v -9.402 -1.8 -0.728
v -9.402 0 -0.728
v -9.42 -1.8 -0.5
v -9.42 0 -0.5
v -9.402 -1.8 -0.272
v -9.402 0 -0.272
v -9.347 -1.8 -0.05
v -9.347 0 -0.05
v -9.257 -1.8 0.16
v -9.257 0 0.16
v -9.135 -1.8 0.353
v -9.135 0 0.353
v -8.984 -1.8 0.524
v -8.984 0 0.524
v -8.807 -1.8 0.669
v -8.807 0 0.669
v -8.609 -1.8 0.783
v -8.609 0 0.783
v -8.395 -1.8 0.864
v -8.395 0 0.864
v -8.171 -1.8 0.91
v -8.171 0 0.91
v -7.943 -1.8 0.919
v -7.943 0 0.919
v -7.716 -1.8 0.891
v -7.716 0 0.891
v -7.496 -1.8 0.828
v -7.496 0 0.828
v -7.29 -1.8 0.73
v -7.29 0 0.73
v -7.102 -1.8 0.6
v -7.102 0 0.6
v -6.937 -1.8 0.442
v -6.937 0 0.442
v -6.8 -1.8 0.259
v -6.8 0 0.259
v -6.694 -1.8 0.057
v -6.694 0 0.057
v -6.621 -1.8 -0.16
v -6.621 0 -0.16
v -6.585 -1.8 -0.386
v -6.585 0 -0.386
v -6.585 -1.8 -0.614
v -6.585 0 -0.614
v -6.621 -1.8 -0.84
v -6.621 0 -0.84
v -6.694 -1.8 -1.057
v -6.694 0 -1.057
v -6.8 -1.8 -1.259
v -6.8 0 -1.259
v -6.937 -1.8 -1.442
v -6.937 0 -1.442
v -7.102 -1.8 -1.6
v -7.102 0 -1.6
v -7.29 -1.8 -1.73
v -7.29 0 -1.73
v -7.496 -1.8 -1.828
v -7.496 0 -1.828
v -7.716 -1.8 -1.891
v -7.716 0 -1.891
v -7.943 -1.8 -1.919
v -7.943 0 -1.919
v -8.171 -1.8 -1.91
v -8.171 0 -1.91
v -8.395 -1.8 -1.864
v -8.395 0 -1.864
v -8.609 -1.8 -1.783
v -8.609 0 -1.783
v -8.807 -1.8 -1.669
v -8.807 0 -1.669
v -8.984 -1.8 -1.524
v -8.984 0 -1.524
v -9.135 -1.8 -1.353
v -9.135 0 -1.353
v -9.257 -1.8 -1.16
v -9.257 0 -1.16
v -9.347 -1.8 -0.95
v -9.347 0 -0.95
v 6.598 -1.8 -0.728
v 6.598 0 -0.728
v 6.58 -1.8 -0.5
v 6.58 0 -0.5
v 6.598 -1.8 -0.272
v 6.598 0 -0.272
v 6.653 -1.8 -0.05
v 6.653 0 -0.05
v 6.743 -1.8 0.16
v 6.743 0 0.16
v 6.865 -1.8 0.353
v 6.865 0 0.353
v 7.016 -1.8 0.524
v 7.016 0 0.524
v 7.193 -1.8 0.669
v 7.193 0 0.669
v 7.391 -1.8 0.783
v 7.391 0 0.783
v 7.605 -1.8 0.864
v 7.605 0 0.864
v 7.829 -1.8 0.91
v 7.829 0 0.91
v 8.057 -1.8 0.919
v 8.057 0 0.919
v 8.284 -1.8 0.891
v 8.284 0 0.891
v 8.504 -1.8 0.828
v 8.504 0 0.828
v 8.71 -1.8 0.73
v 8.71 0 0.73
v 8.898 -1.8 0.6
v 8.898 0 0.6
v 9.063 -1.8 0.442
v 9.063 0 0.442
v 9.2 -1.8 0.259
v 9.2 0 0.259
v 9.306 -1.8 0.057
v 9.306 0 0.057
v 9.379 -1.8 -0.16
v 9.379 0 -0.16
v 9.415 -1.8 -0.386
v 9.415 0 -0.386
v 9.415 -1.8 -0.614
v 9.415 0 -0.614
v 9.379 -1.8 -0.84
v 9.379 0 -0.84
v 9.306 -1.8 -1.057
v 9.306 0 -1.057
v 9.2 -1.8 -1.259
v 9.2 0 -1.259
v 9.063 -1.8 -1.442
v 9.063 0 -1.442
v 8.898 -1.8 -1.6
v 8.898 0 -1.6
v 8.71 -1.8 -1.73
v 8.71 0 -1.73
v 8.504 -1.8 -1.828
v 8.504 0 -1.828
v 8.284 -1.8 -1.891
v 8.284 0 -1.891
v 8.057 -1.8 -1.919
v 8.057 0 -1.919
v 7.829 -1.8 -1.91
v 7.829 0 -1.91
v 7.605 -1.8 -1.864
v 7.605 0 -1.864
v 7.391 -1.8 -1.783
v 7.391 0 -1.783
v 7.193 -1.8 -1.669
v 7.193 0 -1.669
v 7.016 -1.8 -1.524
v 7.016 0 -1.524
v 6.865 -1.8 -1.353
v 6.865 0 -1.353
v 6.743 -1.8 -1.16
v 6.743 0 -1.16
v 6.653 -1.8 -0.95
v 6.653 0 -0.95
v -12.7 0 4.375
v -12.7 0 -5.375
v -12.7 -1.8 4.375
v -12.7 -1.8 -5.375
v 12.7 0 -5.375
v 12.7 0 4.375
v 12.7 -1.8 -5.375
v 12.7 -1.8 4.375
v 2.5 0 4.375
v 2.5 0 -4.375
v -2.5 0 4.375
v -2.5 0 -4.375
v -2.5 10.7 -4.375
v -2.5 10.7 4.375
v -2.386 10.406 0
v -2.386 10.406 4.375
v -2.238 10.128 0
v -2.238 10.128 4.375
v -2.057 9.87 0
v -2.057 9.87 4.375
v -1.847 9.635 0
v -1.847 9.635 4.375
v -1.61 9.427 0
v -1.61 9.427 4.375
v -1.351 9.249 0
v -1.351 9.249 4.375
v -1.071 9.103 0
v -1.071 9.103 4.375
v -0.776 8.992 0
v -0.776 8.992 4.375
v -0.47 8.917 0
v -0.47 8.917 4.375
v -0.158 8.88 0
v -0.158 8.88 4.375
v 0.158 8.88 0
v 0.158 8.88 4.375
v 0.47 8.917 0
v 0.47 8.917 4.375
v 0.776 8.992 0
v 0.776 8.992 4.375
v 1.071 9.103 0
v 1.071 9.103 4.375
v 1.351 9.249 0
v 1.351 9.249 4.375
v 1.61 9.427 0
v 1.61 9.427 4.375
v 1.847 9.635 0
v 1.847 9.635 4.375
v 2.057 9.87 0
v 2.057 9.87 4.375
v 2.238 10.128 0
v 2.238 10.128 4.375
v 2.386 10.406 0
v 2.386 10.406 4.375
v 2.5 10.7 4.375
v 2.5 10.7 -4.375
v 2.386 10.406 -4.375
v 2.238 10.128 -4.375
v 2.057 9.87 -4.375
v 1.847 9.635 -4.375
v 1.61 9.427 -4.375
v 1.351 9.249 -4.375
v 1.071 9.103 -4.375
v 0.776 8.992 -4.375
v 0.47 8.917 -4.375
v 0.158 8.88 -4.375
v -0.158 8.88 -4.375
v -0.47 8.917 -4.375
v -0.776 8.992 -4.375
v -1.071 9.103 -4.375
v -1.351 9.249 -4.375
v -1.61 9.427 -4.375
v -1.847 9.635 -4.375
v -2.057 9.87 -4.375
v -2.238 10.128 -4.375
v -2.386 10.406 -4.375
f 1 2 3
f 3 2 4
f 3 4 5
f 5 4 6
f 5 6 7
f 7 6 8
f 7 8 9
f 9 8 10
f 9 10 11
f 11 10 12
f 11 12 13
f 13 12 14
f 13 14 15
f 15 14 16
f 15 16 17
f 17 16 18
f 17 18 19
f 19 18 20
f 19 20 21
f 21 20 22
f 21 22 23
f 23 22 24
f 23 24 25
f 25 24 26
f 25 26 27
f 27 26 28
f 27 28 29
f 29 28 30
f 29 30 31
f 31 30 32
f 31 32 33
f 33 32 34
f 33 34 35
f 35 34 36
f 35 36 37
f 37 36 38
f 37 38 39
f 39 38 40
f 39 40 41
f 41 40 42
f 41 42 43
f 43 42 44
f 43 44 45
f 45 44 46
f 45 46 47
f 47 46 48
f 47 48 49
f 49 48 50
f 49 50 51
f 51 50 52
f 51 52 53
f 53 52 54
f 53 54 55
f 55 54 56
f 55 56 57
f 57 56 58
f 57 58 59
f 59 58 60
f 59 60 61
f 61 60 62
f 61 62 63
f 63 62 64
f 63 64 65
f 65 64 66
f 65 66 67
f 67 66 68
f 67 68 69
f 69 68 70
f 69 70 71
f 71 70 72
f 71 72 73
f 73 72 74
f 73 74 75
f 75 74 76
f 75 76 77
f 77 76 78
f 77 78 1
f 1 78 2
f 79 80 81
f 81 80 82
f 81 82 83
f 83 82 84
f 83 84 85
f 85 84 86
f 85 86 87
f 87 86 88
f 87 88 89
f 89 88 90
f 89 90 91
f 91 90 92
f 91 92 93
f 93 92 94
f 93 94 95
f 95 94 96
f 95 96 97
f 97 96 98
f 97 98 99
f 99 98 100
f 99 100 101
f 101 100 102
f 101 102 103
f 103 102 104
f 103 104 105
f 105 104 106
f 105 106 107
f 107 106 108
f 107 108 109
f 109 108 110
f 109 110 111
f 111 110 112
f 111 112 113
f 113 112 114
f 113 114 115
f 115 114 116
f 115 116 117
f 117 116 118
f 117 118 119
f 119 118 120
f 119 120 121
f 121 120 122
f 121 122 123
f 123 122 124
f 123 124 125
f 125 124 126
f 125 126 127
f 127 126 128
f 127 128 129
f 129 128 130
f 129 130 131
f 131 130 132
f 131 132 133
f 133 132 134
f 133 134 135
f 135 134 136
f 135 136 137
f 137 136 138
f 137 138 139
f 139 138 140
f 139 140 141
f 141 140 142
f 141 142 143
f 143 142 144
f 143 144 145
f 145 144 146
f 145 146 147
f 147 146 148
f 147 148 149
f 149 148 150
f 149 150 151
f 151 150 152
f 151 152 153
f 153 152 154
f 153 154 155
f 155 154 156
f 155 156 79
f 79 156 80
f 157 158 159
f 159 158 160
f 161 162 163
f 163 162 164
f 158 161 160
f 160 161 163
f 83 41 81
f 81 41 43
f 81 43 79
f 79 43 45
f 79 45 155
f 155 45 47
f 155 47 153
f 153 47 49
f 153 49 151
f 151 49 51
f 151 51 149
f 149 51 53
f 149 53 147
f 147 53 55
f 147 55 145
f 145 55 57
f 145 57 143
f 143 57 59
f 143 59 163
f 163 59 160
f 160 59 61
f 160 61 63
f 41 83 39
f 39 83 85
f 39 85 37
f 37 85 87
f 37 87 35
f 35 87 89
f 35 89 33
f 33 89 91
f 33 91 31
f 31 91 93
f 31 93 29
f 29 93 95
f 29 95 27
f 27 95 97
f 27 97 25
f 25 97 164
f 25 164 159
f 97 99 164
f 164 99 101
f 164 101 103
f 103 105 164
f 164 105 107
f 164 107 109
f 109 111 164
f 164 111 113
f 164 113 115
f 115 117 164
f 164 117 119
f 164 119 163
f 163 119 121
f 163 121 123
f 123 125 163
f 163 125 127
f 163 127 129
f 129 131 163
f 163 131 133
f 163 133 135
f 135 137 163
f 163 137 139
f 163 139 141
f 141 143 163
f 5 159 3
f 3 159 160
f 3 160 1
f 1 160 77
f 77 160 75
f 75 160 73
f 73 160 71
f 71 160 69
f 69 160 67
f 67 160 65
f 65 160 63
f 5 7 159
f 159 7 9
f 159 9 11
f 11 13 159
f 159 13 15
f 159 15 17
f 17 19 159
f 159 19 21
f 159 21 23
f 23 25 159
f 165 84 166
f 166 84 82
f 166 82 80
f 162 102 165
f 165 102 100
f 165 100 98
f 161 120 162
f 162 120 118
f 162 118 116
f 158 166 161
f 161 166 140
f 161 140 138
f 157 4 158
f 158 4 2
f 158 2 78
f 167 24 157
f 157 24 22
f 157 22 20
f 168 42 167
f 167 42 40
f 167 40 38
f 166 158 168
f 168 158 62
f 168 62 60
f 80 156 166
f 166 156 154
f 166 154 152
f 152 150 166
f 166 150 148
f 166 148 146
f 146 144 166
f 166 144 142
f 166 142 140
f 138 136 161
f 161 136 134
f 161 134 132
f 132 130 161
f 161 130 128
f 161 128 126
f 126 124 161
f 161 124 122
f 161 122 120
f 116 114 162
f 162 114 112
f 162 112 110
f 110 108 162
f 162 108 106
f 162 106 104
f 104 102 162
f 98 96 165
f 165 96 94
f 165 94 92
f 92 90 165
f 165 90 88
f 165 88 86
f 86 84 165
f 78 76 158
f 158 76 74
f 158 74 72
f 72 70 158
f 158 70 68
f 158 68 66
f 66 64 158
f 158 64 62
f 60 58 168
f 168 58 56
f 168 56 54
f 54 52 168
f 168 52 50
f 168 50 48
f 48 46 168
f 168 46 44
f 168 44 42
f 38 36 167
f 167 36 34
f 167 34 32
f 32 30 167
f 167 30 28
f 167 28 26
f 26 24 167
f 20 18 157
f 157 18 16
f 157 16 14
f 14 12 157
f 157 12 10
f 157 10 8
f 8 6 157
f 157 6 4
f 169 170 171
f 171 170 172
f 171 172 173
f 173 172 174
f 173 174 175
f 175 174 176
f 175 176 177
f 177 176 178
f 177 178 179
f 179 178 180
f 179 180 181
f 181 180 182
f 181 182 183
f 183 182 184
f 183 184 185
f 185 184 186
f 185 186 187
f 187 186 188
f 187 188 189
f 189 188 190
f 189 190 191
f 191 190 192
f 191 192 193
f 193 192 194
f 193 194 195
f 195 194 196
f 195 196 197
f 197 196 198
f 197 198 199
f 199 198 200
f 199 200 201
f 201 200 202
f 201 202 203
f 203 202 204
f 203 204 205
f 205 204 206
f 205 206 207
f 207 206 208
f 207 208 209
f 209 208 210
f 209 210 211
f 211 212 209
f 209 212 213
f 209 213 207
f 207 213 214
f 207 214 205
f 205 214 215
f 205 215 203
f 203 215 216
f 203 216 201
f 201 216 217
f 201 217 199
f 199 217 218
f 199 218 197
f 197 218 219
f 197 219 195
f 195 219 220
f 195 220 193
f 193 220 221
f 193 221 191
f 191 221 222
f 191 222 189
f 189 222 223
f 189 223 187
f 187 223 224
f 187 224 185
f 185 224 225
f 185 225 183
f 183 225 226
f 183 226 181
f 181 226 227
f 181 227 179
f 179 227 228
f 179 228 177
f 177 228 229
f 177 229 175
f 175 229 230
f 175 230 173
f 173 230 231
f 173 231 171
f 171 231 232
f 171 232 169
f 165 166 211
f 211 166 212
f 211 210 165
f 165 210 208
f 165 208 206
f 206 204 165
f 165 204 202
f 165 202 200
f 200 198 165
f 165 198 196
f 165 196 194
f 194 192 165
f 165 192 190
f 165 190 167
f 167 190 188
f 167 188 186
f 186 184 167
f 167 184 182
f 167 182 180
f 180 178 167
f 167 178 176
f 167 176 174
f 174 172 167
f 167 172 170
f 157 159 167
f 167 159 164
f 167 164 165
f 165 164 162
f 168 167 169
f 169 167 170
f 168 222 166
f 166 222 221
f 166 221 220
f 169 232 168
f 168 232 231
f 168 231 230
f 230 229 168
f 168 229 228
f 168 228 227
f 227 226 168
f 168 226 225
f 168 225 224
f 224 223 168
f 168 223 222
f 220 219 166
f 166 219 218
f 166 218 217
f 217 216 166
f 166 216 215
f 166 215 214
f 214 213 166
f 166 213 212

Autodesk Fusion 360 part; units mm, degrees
sketch "Sketch1" plane through (0, 0, 0) normal (0, 1, 0) x (1, 0, 0)
  line L0 (2.5, -4.375) -> (-2.5, -4.375)
  line L1 (-2.5, -4.375) -> (-2.5, 4.375)
  line L2 (-2.5, 4.375) -> (2.5, 4.375)
  line L3 (2.5, 4.375) -> (2.5, -4.375)
  line L4 (0, -17.6215) -> (0, 10.113) construction
  line L5 (14.6118, 0) -> (-14.9327, 0) construction
  dimension "d1" = 5
  dimension "d2" = 8.75
extrude "Extrude1" add sketch "Sketch1" along normal blind 8.875
sketch "Sketch2" plane through (0, 0, 4.375) normal (0, 0, 1) x (1, 0, 0)
  line L0 (-2.5, 0) -> (2.5, 0)
  line L1 (2.5, 0) -> (2.5, 8.875)
  line L2 (2.5, 8.875) -> (-2.5, 8.875)
  line L3 (-2.5, 8.875) -> (-2.5, 0)
  line L4 (-2.5, 8.875) -> (2.5, 8.875)
  line L5 (2.5, 8.875) -> (2.5, 11.5)
  line L6 (2.5, 11.5) -> (-2.5, 11.5)
  line L7 (-2.5, 11.5) -> (-2.5, 8.875)
  circle A0 centre (0, 11.5) radius 2.625
  line L8 (0, 0) -> (0, 8.875) construction
  dimension "d10" = 5.25
extrude "Extrude3" add sketch "Sketch2" against normal blind 8.75 contours L2 L4 L7 A0 | L2 L4 L5 A0
sketch "Sketch3" plane through (0, 0, 0) normal (0, -1, 0) x (1, 0, 0)
  line L0 (-2.5, -4.375) -> (2.5, -4.375)
  line L1 (2.5, -4.375) -> (2.5, 4.375)
  line L2 (2.5, 4.375) -> (-2.5, 4.375)
  line L3 (-2.5, 4.375) -> (-2.5, -4.375)
  line L4 (-12.7, 4.375) -> (12.7, 4.375)
  line L5 (12.7, 4.375) -> (12.7, -5.375)
  line L6 (12.7, -5.375) -> (-12.7, -5.375)
  line L7 (-12.7, -5.375) -> (-12.7, 4.375)
  line L8 (0, 4.375) -> (0, -4.375) construction
  line L9 (12.7, -0.5) -> (-12.7, -0.5) construction
  circle A0 centre (-8, -0.5) radius 1.42
  circle A1 centre (8, -0.5) radius 1.42
  dimension "d16" = 25.4
  dimension "d17" = 2.84
  dimension "d18" = 16
  dimension "d21" = 9.75
  dimension "d22" = 4.875
extrude "Extrude5" add sketch "Sketch3" along normal blind 1.8
